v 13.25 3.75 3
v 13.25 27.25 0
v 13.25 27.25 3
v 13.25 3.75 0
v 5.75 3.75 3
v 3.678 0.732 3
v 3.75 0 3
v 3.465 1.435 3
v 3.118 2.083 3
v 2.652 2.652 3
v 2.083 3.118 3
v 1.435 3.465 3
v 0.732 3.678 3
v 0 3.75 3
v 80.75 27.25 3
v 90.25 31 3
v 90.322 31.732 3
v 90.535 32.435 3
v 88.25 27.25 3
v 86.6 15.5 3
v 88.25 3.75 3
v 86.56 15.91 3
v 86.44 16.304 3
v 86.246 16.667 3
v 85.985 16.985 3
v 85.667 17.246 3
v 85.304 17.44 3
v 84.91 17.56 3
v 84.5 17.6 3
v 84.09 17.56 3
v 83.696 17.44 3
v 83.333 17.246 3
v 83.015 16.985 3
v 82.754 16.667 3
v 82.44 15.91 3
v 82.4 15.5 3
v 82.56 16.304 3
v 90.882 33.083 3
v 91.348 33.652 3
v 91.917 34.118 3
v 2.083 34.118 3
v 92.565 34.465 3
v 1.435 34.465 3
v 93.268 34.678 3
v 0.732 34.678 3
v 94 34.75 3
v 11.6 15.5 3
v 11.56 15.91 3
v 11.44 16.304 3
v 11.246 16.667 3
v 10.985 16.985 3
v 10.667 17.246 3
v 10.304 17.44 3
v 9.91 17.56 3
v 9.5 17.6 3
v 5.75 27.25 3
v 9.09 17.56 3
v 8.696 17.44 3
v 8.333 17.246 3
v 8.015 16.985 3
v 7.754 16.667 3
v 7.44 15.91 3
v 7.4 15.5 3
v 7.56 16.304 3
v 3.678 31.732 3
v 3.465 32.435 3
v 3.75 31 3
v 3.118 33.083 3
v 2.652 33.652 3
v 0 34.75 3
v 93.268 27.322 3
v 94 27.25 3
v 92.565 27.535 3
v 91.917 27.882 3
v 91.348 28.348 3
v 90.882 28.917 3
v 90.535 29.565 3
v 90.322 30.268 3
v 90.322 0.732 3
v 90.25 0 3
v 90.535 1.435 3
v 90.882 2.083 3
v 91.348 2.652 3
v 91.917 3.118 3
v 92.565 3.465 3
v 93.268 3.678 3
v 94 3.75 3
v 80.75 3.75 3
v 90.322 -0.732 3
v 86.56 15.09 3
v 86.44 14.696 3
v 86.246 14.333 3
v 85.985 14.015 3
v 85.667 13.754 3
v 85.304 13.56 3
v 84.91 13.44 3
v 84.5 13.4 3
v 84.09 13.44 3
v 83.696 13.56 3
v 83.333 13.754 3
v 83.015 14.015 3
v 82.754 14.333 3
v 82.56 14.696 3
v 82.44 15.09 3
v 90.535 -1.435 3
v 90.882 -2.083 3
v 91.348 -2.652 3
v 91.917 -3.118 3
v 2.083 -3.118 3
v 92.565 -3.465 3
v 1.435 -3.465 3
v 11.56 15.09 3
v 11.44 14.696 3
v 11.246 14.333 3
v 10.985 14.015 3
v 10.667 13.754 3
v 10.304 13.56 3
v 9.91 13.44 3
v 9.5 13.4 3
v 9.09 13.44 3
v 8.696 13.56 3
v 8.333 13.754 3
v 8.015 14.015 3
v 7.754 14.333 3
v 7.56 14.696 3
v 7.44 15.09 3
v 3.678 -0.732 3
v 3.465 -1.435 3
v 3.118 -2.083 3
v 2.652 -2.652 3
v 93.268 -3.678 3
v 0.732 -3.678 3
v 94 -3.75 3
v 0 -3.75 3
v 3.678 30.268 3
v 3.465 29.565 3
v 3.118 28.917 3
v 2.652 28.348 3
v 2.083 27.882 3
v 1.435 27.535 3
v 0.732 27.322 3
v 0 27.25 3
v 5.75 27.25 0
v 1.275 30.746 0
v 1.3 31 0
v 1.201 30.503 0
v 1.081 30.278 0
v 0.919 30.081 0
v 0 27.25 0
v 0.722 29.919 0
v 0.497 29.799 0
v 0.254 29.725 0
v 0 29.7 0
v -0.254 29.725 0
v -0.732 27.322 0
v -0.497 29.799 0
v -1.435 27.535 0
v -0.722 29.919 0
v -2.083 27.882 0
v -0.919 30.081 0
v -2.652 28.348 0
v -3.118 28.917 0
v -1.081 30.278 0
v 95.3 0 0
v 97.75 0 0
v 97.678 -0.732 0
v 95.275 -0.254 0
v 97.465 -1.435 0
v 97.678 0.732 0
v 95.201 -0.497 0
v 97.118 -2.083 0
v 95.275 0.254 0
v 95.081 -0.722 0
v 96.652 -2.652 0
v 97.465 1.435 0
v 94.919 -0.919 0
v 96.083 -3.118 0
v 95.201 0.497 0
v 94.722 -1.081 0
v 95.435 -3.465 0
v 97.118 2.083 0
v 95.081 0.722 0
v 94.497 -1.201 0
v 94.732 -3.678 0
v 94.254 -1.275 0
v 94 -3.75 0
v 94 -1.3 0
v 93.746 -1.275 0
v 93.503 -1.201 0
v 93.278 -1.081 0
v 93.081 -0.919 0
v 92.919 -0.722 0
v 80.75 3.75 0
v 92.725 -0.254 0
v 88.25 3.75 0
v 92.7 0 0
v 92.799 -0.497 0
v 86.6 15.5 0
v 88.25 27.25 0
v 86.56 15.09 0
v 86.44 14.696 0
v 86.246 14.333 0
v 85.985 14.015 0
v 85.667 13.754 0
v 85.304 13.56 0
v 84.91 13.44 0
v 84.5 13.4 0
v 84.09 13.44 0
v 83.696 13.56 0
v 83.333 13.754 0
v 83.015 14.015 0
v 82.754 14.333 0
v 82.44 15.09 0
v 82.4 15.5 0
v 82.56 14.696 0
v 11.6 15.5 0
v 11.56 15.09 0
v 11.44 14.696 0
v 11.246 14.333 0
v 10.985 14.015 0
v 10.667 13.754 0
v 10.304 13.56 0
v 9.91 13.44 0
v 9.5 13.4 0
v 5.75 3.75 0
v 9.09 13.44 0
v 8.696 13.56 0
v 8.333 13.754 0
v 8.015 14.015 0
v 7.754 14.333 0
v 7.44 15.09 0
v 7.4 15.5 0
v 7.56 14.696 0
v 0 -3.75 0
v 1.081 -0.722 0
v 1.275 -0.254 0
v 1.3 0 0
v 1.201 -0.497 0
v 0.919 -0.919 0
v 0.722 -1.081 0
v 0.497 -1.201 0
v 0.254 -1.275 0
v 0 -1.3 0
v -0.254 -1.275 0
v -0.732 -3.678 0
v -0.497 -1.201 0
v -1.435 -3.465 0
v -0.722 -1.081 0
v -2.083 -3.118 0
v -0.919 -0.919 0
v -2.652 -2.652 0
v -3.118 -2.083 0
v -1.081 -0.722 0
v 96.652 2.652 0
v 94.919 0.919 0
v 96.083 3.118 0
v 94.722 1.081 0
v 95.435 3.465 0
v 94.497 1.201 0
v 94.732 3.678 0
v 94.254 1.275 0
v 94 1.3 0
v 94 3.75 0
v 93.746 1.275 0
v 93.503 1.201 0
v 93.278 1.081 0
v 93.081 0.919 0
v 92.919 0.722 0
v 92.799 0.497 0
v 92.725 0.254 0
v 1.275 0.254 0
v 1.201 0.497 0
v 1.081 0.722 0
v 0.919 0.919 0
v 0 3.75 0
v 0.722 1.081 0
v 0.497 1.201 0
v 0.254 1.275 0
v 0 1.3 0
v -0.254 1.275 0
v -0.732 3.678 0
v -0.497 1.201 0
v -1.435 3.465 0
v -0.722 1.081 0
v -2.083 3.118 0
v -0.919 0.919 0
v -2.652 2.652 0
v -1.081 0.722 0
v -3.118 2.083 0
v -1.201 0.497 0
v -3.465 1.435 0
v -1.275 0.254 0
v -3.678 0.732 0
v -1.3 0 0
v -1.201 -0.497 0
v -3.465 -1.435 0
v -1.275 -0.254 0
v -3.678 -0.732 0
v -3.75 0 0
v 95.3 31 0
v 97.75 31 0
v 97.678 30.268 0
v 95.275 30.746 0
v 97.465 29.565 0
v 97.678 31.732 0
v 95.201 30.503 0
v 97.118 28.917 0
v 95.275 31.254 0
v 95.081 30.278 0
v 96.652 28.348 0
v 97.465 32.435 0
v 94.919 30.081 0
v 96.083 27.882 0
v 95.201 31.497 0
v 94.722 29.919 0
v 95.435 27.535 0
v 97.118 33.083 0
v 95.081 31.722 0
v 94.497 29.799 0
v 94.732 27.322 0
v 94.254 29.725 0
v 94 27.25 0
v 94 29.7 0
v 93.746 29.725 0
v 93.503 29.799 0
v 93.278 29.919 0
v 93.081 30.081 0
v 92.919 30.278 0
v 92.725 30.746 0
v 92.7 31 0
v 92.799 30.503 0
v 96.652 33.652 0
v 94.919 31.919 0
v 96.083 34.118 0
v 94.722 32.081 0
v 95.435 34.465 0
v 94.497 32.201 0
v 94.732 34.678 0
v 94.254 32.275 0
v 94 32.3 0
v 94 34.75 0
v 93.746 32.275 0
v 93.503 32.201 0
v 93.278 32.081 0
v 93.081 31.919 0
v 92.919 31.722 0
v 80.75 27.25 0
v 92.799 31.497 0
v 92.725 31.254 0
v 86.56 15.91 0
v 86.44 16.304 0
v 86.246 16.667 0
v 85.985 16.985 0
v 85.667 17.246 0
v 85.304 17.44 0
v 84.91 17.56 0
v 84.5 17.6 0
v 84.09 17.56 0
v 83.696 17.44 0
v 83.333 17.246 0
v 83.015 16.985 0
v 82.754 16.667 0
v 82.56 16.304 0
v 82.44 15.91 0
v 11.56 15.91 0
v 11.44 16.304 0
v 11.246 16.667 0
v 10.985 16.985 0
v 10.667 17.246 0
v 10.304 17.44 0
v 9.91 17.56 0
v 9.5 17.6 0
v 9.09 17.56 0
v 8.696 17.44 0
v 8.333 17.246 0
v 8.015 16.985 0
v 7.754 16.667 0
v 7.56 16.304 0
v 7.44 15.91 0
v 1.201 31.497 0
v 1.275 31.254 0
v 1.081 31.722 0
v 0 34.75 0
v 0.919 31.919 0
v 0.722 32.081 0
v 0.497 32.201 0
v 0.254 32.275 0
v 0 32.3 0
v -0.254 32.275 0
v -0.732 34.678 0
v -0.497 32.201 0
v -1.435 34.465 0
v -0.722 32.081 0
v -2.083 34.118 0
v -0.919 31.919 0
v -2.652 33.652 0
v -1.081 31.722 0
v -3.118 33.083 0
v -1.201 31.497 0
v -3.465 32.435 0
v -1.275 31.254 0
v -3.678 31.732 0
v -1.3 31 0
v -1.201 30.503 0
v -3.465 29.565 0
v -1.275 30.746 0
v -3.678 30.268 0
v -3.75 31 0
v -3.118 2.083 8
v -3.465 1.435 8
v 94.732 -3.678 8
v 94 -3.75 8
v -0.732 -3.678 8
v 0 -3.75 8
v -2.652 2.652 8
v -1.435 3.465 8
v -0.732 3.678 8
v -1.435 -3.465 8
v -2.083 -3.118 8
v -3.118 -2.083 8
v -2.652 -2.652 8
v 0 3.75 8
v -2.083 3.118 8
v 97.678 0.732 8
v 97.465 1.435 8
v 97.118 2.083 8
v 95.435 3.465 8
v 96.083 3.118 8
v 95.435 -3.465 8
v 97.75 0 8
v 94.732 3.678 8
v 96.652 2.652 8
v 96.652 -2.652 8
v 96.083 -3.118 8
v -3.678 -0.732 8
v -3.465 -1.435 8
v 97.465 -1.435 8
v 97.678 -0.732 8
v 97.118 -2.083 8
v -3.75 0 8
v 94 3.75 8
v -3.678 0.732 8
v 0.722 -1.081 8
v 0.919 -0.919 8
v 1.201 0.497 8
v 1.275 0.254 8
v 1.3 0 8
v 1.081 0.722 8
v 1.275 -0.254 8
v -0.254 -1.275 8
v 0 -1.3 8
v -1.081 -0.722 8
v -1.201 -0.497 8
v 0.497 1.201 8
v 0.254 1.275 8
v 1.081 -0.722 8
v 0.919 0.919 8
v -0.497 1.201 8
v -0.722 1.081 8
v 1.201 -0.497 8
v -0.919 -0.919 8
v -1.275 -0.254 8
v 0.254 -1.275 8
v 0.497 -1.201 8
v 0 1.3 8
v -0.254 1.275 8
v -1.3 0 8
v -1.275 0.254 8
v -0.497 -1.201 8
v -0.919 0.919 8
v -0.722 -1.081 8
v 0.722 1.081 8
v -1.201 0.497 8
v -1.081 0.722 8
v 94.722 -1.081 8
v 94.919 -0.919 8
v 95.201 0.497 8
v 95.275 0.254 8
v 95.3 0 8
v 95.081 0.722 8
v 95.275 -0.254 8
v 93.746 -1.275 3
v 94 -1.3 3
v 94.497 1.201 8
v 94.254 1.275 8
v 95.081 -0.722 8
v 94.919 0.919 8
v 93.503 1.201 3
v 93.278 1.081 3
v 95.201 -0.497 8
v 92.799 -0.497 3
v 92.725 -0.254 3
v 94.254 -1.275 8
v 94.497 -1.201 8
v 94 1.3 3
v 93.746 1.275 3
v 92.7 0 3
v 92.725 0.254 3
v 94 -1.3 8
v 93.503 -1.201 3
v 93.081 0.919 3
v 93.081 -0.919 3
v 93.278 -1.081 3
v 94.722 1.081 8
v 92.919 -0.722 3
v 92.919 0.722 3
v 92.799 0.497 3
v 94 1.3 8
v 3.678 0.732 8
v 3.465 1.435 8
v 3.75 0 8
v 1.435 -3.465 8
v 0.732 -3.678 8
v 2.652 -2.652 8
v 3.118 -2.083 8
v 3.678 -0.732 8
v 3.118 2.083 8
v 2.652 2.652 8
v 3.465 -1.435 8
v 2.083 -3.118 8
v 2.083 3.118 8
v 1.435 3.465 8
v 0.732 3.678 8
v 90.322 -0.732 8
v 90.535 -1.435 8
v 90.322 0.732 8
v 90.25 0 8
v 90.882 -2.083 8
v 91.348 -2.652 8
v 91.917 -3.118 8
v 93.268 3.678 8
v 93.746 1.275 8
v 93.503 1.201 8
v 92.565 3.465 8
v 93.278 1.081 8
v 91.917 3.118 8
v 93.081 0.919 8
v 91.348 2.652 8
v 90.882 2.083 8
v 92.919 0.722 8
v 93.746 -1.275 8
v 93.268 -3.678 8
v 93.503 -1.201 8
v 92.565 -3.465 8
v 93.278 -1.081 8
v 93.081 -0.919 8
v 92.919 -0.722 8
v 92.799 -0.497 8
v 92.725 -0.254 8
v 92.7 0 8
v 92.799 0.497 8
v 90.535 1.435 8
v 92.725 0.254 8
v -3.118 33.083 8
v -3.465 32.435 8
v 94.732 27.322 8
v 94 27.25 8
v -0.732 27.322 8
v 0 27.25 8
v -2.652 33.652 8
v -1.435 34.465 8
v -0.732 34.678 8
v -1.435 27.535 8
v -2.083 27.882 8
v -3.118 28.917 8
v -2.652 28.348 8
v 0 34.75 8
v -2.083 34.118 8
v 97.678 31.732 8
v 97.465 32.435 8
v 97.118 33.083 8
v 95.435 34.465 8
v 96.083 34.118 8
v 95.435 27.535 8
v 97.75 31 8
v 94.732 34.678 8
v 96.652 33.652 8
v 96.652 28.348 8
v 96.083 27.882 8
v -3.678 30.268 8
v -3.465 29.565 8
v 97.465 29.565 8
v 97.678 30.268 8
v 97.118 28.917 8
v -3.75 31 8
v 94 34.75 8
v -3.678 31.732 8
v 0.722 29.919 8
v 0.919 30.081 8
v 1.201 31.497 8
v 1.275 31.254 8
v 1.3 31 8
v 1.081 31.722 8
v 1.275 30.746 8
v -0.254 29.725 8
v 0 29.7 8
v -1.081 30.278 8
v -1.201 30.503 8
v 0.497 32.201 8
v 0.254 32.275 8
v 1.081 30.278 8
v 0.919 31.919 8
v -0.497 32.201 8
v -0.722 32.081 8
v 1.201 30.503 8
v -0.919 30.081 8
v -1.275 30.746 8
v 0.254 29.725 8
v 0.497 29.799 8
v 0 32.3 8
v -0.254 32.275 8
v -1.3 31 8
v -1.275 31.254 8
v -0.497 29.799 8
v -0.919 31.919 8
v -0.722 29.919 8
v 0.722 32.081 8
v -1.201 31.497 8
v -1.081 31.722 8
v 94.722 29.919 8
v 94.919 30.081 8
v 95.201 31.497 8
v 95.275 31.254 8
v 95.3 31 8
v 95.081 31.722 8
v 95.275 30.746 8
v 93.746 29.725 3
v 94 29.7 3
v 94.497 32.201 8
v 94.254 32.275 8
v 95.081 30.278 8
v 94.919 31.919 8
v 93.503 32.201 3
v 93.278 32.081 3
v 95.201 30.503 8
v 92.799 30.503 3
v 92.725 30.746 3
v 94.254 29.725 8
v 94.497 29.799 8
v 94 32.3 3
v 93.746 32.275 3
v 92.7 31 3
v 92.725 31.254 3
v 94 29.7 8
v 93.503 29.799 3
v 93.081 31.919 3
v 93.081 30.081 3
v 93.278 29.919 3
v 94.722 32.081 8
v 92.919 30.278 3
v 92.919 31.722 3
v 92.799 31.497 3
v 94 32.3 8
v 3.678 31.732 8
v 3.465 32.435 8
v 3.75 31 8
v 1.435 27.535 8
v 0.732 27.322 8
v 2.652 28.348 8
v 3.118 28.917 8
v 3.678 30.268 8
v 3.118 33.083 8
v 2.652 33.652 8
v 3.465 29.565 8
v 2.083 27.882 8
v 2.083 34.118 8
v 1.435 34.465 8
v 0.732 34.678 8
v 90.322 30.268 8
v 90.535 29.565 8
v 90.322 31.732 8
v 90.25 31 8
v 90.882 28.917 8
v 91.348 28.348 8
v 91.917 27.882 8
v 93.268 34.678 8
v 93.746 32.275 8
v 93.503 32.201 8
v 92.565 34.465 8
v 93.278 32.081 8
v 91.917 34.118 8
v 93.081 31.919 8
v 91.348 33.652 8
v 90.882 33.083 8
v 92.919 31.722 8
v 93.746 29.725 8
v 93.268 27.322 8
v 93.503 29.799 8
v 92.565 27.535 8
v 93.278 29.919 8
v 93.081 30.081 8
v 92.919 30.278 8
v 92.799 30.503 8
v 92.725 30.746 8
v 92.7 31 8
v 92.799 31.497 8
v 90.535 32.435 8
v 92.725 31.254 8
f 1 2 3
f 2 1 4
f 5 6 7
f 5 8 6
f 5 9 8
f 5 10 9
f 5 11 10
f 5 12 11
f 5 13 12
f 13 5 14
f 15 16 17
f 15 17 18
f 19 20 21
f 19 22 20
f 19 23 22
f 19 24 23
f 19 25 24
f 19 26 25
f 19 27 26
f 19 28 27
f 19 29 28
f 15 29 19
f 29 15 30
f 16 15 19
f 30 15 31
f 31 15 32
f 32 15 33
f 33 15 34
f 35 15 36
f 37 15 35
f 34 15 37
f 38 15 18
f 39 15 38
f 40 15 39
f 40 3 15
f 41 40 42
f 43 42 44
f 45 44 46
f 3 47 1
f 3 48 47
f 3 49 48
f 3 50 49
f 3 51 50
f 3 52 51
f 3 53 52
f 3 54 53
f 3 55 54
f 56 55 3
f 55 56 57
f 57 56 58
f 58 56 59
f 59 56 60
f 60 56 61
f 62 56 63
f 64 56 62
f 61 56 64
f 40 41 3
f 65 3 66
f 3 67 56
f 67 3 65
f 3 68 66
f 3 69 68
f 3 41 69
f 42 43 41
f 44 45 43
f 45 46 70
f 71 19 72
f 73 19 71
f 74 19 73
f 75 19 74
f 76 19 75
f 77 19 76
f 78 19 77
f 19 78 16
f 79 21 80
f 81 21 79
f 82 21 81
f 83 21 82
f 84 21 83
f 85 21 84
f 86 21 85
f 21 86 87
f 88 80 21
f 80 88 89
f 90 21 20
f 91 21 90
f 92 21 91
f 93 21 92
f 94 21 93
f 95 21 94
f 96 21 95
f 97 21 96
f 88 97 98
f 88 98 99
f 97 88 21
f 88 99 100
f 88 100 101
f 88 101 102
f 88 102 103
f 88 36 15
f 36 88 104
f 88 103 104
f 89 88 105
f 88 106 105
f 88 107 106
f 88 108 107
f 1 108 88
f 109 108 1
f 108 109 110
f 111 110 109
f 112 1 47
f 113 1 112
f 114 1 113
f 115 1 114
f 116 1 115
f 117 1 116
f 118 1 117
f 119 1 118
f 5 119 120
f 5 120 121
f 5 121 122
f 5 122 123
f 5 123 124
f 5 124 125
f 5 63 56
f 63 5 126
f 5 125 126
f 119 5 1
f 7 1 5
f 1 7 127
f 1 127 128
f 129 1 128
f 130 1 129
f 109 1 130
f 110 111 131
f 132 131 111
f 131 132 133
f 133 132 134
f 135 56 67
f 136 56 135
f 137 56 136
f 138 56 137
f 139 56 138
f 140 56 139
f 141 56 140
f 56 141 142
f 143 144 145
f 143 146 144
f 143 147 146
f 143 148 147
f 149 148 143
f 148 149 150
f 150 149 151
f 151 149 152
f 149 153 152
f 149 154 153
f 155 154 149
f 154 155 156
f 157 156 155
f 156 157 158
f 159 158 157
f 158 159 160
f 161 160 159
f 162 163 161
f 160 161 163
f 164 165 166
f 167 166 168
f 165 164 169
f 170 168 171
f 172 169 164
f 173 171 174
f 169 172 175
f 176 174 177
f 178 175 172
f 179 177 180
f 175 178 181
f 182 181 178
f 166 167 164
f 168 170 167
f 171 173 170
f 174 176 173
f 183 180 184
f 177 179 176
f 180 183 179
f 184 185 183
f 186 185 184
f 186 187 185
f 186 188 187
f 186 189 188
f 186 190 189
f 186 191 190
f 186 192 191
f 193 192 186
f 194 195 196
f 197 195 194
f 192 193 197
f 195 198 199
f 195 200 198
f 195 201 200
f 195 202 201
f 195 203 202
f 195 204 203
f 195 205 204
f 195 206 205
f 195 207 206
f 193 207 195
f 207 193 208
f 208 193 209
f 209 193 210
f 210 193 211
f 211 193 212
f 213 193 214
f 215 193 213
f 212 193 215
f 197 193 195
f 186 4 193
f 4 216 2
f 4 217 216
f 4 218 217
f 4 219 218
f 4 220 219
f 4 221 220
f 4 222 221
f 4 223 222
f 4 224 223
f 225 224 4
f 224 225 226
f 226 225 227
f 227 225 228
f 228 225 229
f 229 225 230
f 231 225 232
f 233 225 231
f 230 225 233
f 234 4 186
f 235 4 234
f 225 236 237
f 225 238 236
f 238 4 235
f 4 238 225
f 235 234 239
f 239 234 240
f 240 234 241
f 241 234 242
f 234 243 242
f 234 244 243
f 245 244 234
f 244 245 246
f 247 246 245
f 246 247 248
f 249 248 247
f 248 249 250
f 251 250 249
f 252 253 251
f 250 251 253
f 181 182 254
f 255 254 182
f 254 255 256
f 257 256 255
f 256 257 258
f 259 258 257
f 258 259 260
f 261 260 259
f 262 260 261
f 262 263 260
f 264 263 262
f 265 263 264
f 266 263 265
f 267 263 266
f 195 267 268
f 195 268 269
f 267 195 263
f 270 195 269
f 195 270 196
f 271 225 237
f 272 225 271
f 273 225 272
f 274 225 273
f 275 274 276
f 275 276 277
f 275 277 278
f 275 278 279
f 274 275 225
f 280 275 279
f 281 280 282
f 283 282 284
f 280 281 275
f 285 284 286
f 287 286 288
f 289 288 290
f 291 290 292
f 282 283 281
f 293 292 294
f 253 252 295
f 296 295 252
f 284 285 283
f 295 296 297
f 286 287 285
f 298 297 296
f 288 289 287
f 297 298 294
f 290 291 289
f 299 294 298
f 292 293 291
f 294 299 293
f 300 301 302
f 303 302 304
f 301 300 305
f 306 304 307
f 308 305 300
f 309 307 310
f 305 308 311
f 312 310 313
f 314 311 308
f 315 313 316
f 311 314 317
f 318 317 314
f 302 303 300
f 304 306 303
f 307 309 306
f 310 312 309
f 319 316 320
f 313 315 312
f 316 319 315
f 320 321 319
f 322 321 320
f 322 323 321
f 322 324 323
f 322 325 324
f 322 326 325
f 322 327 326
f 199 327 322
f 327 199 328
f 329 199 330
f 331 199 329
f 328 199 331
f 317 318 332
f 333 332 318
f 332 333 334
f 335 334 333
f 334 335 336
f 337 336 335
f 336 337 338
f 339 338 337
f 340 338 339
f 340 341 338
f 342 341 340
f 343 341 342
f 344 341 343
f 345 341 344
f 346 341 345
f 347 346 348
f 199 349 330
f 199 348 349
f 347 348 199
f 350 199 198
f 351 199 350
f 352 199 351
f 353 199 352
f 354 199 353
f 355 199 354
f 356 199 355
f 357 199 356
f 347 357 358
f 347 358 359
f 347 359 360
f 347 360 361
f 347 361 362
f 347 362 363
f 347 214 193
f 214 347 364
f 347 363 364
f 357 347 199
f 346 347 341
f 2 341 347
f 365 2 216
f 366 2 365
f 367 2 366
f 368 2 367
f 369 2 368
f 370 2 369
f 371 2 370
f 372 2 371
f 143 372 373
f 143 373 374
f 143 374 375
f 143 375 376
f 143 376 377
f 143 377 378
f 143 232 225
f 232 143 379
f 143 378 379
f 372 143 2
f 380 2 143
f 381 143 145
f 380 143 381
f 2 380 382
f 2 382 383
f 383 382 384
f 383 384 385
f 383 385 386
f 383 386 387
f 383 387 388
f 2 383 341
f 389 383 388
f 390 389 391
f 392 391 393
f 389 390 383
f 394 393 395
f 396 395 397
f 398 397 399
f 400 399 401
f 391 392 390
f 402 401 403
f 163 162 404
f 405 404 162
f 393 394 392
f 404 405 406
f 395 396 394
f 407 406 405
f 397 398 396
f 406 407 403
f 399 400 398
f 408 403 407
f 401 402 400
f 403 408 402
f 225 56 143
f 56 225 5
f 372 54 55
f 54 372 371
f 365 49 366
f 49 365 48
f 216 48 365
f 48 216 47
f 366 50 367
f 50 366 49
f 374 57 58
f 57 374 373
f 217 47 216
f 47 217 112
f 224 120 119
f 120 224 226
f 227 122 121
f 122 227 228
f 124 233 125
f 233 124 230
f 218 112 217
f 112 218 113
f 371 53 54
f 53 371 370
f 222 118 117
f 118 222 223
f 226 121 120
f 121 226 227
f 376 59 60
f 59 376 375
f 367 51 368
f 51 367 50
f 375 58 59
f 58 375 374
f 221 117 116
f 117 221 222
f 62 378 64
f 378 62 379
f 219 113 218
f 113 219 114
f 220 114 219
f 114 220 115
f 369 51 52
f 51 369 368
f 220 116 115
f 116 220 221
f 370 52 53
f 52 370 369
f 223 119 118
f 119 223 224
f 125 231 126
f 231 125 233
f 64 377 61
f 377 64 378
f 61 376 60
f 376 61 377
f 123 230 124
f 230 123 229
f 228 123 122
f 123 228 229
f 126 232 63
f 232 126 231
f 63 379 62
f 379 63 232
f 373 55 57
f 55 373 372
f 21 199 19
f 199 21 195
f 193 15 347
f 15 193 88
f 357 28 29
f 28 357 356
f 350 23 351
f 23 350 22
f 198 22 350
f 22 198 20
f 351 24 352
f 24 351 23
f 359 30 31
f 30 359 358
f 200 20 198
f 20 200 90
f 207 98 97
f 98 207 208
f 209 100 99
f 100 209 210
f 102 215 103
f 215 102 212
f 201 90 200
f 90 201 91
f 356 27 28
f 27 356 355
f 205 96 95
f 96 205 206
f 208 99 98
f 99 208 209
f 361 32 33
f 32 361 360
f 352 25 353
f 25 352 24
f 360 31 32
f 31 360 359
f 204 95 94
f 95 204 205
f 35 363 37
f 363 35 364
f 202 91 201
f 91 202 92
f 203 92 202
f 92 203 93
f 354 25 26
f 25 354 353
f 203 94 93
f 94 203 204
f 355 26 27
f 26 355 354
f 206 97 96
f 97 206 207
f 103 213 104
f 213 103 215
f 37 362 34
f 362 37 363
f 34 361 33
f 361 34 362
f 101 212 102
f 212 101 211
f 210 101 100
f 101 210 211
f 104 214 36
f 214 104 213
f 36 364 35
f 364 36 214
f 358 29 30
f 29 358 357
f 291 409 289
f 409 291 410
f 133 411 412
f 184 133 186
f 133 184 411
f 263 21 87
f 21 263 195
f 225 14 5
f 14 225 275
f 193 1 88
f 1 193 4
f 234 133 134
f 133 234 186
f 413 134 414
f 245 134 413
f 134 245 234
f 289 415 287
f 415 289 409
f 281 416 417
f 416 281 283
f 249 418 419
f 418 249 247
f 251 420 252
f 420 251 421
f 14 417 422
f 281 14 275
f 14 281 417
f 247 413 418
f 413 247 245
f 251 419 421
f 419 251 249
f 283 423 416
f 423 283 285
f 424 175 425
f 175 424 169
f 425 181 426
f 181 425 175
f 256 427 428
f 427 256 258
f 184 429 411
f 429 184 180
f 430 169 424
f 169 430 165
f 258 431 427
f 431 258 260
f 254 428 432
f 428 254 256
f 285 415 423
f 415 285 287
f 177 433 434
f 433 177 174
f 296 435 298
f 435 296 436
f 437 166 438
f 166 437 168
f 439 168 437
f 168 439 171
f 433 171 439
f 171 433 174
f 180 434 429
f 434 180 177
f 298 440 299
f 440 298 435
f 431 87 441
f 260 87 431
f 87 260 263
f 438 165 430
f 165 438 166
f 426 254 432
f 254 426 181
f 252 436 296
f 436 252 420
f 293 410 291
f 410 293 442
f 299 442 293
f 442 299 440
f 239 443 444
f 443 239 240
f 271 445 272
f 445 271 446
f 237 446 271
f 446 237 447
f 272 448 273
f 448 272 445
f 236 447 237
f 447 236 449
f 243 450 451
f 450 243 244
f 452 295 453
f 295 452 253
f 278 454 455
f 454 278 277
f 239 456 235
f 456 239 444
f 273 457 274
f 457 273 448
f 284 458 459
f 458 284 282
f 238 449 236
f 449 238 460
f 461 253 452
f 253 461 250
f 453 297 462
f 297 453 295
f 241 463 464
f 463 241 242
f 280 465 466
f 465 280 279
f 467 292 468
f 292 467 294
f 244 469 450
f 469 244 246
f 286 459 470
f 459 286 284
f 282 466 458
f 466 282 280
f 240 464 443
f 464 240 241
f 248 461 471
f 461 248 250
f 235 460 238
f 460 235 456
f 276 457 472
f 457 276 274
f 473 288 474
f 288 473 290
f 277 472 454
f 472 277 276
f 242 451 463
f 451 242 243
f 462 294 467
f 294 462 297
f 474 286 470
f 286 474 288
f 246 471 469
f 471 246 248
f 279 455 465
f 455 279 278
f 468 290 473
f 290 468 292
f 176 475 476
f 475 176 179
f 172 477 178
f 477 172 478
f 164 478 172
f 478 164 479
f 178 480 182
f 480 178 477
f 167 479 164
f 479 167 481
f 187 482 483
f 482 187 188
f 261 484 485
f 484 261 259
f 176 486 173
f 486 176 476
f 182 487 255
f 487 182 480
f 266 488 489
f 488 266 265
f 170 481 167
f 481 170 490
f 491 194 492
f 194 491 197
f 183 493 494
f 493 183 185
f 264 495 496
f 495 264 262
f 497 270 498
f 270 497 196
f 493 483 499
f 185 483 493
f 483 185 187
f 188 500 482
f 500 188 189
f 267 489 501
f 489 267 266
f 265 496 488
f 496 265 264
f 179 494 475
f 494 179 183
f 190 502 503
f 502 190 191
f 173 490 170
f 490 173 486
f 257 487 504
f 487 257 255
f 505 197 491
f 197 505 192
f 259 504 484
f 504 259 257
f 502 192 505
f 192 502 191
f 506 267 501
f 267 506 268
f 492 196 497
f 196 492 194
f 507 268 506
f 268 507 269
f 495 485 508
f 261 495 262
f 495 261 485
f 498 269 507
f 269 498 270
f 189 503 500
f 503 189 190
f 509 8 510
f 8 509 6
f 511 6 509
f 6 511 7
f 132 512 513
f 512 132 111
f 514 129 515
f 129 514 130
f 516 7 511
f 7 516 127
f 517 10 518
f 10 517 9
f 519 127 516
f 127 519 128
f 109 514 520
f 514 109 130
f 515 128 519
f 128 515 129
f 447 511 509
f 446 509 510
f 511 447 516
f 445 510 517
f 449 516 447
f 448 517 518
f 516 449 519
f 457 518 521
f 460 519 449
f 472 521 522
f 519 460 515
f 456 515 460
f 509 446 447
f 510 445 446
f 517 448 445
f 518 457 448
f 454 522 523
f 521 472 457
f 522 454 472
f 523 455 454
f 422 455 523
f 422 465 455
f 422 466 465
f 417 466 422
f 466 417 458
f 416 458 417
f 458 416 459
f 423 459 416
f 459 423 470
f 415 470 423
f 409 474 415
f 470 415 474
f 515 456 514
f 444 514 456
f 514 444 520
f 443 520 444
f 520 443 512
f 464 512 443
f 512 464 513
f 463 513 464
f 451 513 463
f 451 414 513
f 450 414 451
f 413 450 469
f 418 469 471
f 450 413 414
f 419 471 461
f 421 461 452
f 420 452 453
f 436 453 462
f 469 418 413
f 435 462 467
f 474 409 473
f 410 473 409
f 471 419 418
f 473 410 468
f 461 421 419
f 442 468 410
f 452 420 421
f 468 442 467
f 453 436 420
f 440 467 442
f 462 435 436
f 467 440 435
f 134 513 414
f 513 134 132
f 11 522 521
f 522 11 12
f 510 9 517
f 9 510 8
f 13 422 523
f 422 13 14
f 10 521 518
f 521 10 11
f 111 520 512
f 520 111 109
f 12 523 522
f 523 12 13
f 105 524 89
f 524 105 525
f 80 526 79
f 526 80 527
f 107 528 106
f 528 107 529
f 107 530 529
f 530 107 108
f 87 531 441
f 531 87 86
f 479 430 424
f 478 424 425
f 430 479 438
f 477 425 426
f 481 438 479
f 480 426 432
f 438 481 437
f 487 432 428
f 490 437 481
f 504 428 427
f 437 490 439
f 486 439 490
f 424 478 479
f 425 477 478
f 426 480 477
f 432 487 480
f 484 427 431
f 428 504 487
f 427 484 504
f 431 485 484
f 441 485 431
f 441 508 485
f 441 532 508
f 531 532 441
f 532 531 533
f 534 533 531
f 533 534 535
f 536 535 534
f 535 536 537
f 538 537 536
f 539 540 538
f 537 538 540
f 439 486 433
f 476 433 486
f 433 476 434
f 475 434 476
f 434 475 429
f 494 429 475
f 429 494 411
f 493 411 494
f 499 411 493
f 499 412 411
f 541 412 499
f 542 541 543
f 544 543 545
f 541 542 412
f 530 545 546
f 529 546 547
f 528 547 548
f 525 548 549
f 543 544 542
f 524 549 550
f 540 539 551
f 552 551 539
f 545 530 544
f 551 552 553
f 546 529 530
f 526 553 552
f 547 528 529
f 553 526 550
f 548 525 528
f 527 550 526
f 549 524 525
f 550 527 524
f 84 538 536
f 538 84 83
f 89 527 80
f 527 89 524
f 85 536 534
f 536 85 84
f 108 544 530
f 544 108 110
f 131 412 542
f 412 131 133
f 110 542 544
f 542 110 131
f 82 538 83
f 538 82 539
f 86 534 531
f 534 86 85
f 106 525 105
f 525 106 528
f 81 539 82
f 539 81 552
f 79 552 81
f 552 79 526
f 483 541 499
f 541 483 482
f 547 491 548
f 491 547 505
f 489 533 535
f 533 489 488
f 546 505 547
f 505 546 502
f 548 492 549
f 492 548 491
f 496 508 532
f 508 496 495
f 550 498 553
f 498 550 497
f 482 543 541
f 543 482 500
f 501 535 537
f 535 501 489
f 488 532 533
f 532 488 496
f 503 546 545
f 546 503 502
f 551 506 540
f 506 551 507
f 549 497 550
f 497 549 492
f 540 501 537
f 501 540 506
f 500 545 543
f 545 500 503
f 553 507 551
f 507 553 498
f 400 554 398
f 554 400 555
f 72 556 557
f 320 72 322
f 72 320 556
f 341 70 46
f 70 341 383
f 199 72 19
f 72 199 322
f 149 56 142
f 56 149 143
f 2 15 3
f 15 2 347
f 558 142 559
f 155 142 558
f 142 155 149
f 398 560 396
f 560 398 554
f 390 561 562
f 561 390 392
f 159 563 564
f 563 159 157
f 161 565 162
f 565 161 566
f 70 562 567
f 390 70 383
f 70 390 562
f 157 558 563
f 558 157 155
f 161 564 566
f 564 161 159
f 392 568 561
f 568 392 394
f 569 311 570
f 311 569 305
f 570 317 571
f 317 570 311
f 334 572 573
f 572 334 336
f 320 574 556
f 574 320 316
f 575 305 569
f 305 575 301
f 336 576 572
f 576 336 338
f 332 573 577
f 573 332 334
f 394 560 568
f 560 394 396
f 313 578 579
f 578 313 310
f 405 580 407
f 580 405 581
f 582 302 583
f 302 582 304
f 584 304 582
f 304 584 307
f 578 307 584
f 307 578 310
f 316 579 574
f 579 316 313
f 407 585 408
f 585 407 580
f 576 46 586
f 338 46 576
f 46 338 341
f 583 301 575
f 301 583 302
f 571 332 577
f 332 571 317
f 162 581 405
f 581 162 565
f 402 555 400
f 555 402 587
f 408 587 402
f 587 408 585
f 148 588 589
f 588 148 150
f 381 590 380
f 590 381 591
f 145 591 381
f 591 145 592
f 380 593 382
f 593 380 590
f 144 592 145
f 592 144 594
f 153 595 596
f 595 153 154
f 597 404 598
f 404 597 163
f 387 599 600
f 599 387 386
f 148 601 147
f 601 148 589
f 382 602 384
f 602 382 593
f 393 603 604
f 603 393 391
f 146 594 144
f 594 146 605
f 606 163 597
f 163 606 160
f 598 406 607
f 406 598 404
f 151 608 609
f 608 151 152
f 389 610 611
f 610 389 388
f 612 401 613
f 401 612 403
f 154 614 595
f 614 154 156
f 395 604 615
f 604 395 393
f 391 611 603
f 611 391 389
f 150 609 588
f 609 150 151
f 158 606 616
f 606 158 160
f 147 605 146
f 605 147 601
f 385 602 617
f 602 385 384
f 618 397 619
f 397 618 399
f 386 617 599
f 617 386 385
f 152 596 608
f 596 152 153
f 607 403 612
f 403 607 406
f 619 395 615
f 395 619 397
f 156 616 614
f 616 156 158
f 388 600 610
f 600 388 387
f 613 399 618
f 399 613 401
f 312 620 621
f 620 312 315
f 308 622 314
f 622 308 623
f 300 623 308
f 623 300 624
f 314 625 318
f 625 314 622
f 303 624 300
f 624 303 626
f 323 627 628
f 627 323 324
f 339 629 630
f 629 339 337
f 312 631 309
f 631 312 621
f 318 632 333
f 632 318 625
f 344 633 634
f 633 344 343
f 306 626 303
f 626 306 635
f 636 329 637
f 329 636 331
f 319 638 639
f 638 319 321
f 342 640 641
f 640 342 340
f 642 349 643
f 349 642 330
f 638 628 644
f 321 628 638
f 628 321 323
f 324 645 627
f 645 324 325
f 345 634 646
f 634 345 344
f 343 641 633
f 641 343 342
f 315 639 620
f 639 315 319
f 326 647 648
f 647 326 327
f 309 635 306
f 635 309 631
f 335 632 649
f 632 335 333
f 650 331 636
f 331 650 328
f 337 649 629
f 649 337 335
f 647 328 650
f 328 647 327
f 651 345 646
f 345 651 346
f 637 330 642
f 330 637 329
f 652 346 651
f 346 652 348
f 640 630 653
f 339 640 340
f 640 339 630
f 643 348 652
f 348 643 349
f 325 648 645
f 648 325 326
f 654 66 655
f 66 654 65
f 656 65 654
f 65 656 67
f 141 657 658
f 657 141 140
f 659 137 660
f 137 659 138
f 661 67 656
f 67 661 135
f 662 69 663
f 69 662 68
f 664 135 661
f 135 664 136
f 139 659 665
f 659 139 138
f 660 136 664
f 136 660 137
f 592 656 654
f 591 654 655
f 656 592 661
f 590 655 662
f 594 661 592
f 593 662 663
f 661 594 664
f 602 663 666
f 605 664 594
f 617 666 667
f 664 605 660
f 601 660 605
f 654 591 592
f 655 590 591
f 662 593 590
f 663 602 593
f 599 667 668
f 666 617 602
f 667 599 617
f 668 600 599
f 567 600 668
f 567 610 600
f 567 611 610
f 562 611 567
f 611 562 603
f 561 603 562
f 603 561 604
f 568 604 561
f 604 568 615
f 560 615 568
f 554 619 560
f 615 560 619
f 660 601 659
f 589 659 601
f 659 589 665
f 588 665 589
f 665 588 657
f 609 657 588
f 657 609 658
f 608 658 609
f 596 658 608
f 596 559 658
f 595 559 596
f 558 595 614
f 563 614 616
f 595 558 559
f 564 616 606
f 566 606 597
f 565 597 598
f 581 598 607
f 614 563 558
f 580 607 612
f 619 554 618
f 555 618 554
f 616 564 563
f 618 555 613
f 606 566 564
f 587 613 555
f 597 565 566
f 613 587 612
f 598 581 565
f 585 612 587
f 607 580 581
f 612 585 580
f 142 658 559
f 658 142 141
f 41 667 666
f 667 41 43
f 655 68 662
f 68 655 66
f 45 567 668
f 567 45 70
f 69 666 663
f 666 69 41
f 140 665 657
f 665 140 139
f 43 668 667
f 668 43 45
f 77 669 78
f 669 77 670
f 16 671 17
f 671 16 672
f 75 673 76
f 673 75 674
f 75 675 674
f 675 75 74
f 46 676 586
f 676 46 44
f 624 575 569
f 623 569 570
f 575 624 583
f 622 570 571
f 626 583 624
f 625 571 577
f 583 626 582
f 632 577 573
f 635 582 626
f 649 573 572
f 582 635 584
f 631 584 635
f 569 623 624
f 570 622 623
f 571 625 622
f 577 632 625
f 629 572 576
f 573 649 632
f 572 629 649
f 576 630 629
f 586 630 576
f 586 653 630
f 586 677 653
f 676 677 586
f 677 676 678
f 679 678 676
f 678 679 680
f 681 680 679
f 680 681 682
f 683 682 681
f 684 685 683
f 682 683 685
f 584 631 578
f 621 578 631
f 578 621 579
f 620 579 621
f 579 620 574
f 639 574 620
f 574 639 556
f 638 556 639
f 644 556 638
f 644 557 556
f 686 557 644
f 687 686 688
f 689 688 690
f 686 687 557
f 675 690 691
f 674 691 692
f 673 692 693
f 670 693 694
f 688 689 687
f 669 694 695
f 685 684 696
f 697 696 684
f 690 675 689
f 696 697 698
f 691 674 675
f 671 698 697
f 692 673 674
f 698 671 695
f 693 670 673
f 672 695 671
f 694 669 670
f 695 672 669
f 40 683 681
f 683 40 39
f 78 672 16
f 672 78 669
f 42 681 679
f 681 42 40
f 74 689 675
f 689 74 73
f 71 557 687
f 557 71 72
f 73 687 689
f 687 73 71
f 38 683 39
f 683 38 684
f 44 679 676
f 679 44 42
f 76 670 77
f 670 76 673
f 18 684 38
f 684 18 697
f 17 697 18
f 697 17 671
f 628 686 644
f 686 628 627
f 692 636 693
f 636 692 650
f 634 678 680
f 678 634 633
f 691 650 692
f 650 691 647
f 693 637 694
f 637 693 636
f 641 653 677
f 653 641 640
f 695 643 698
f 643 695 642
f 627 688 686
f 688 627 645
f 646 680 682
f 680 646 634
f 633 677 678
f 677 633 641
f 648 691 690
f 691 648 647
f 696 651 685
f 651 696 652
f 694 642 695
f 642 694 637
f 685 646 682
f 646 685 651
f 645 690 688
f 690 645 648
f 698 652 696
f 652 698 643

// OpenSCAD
// PICterminalVESAmount1

$fn = 32;

vesaDist = 75.0;
picDistL = 94.0;
picDistW = 31.0;

vesaHole = 4.2;
picHole = 2.6;

stripWidth = 7.5;
stripThick = 3.0;

picSpacerH = 5.0;

vesaOffset = (picDistL - vesaDist) / 2;

picStrip();
translate([0, 0, stripThick]) {
    translate([0, 0, 0]) spacer();
    translate([picDistL, 0, 0]) spacer();
}    
translate([0, picDistW, 0]) {
    picStrip();
        translate([0, 0, stripThick]) {
            translate([0, 0, 0]) spacer();
            translate([picDistL, 0, 0]) spacer();  
        }  
}

translate([vesaOffset, 0, 0]) vesaStrip();
translate([picDistL - vesaOffset, 0, 0]) vesaStrip();

module vesaStrip() {
    difference() {
        translate([0, picDistW / 2, stripThick / 2]) cube([stripWidth, picDistW, stripThick], true);
        translate([0, picDistW / 2, -0.01]) cylinder(d = vesaHole, h = stripThick + 0.02);
    }
}

module picStrip() {
    difference() {
        translate([0, 0, 0]) strip();
        translate([0, 0, -0.01]) cylinder(d = picHole, h = stripThick + 0.02);
        translate([picDistL, 0, -0.01]) cylinder(d = picHole, h = stripThick + 0.02);   
    } 
}

module picSpacers() {
    translate([0, 0, stripThick]) {
        translate([0, 0, 0]) spacer();
        translate([picDistL, 0, 0]) spacer();
        translate([0, picDistW, 0]) spacer();
        translate([picDistL, picDistW, 0]) spacer();
    }
}

module strip() {
    hull() {
        cylinder(d = stripWidth, h = stripThick);
        translate([picDistL, 0, 0]) cylinder(d = stripWidth, h = stripThick);
    }
}

module spacer() {
    difference() {
        cylinder(d = stripWidth, h = picSpacerH);
        translate([0, 0, -0.01]) cylinder(d = picHole, h = picSpacerH + 0.02);
    }
}
